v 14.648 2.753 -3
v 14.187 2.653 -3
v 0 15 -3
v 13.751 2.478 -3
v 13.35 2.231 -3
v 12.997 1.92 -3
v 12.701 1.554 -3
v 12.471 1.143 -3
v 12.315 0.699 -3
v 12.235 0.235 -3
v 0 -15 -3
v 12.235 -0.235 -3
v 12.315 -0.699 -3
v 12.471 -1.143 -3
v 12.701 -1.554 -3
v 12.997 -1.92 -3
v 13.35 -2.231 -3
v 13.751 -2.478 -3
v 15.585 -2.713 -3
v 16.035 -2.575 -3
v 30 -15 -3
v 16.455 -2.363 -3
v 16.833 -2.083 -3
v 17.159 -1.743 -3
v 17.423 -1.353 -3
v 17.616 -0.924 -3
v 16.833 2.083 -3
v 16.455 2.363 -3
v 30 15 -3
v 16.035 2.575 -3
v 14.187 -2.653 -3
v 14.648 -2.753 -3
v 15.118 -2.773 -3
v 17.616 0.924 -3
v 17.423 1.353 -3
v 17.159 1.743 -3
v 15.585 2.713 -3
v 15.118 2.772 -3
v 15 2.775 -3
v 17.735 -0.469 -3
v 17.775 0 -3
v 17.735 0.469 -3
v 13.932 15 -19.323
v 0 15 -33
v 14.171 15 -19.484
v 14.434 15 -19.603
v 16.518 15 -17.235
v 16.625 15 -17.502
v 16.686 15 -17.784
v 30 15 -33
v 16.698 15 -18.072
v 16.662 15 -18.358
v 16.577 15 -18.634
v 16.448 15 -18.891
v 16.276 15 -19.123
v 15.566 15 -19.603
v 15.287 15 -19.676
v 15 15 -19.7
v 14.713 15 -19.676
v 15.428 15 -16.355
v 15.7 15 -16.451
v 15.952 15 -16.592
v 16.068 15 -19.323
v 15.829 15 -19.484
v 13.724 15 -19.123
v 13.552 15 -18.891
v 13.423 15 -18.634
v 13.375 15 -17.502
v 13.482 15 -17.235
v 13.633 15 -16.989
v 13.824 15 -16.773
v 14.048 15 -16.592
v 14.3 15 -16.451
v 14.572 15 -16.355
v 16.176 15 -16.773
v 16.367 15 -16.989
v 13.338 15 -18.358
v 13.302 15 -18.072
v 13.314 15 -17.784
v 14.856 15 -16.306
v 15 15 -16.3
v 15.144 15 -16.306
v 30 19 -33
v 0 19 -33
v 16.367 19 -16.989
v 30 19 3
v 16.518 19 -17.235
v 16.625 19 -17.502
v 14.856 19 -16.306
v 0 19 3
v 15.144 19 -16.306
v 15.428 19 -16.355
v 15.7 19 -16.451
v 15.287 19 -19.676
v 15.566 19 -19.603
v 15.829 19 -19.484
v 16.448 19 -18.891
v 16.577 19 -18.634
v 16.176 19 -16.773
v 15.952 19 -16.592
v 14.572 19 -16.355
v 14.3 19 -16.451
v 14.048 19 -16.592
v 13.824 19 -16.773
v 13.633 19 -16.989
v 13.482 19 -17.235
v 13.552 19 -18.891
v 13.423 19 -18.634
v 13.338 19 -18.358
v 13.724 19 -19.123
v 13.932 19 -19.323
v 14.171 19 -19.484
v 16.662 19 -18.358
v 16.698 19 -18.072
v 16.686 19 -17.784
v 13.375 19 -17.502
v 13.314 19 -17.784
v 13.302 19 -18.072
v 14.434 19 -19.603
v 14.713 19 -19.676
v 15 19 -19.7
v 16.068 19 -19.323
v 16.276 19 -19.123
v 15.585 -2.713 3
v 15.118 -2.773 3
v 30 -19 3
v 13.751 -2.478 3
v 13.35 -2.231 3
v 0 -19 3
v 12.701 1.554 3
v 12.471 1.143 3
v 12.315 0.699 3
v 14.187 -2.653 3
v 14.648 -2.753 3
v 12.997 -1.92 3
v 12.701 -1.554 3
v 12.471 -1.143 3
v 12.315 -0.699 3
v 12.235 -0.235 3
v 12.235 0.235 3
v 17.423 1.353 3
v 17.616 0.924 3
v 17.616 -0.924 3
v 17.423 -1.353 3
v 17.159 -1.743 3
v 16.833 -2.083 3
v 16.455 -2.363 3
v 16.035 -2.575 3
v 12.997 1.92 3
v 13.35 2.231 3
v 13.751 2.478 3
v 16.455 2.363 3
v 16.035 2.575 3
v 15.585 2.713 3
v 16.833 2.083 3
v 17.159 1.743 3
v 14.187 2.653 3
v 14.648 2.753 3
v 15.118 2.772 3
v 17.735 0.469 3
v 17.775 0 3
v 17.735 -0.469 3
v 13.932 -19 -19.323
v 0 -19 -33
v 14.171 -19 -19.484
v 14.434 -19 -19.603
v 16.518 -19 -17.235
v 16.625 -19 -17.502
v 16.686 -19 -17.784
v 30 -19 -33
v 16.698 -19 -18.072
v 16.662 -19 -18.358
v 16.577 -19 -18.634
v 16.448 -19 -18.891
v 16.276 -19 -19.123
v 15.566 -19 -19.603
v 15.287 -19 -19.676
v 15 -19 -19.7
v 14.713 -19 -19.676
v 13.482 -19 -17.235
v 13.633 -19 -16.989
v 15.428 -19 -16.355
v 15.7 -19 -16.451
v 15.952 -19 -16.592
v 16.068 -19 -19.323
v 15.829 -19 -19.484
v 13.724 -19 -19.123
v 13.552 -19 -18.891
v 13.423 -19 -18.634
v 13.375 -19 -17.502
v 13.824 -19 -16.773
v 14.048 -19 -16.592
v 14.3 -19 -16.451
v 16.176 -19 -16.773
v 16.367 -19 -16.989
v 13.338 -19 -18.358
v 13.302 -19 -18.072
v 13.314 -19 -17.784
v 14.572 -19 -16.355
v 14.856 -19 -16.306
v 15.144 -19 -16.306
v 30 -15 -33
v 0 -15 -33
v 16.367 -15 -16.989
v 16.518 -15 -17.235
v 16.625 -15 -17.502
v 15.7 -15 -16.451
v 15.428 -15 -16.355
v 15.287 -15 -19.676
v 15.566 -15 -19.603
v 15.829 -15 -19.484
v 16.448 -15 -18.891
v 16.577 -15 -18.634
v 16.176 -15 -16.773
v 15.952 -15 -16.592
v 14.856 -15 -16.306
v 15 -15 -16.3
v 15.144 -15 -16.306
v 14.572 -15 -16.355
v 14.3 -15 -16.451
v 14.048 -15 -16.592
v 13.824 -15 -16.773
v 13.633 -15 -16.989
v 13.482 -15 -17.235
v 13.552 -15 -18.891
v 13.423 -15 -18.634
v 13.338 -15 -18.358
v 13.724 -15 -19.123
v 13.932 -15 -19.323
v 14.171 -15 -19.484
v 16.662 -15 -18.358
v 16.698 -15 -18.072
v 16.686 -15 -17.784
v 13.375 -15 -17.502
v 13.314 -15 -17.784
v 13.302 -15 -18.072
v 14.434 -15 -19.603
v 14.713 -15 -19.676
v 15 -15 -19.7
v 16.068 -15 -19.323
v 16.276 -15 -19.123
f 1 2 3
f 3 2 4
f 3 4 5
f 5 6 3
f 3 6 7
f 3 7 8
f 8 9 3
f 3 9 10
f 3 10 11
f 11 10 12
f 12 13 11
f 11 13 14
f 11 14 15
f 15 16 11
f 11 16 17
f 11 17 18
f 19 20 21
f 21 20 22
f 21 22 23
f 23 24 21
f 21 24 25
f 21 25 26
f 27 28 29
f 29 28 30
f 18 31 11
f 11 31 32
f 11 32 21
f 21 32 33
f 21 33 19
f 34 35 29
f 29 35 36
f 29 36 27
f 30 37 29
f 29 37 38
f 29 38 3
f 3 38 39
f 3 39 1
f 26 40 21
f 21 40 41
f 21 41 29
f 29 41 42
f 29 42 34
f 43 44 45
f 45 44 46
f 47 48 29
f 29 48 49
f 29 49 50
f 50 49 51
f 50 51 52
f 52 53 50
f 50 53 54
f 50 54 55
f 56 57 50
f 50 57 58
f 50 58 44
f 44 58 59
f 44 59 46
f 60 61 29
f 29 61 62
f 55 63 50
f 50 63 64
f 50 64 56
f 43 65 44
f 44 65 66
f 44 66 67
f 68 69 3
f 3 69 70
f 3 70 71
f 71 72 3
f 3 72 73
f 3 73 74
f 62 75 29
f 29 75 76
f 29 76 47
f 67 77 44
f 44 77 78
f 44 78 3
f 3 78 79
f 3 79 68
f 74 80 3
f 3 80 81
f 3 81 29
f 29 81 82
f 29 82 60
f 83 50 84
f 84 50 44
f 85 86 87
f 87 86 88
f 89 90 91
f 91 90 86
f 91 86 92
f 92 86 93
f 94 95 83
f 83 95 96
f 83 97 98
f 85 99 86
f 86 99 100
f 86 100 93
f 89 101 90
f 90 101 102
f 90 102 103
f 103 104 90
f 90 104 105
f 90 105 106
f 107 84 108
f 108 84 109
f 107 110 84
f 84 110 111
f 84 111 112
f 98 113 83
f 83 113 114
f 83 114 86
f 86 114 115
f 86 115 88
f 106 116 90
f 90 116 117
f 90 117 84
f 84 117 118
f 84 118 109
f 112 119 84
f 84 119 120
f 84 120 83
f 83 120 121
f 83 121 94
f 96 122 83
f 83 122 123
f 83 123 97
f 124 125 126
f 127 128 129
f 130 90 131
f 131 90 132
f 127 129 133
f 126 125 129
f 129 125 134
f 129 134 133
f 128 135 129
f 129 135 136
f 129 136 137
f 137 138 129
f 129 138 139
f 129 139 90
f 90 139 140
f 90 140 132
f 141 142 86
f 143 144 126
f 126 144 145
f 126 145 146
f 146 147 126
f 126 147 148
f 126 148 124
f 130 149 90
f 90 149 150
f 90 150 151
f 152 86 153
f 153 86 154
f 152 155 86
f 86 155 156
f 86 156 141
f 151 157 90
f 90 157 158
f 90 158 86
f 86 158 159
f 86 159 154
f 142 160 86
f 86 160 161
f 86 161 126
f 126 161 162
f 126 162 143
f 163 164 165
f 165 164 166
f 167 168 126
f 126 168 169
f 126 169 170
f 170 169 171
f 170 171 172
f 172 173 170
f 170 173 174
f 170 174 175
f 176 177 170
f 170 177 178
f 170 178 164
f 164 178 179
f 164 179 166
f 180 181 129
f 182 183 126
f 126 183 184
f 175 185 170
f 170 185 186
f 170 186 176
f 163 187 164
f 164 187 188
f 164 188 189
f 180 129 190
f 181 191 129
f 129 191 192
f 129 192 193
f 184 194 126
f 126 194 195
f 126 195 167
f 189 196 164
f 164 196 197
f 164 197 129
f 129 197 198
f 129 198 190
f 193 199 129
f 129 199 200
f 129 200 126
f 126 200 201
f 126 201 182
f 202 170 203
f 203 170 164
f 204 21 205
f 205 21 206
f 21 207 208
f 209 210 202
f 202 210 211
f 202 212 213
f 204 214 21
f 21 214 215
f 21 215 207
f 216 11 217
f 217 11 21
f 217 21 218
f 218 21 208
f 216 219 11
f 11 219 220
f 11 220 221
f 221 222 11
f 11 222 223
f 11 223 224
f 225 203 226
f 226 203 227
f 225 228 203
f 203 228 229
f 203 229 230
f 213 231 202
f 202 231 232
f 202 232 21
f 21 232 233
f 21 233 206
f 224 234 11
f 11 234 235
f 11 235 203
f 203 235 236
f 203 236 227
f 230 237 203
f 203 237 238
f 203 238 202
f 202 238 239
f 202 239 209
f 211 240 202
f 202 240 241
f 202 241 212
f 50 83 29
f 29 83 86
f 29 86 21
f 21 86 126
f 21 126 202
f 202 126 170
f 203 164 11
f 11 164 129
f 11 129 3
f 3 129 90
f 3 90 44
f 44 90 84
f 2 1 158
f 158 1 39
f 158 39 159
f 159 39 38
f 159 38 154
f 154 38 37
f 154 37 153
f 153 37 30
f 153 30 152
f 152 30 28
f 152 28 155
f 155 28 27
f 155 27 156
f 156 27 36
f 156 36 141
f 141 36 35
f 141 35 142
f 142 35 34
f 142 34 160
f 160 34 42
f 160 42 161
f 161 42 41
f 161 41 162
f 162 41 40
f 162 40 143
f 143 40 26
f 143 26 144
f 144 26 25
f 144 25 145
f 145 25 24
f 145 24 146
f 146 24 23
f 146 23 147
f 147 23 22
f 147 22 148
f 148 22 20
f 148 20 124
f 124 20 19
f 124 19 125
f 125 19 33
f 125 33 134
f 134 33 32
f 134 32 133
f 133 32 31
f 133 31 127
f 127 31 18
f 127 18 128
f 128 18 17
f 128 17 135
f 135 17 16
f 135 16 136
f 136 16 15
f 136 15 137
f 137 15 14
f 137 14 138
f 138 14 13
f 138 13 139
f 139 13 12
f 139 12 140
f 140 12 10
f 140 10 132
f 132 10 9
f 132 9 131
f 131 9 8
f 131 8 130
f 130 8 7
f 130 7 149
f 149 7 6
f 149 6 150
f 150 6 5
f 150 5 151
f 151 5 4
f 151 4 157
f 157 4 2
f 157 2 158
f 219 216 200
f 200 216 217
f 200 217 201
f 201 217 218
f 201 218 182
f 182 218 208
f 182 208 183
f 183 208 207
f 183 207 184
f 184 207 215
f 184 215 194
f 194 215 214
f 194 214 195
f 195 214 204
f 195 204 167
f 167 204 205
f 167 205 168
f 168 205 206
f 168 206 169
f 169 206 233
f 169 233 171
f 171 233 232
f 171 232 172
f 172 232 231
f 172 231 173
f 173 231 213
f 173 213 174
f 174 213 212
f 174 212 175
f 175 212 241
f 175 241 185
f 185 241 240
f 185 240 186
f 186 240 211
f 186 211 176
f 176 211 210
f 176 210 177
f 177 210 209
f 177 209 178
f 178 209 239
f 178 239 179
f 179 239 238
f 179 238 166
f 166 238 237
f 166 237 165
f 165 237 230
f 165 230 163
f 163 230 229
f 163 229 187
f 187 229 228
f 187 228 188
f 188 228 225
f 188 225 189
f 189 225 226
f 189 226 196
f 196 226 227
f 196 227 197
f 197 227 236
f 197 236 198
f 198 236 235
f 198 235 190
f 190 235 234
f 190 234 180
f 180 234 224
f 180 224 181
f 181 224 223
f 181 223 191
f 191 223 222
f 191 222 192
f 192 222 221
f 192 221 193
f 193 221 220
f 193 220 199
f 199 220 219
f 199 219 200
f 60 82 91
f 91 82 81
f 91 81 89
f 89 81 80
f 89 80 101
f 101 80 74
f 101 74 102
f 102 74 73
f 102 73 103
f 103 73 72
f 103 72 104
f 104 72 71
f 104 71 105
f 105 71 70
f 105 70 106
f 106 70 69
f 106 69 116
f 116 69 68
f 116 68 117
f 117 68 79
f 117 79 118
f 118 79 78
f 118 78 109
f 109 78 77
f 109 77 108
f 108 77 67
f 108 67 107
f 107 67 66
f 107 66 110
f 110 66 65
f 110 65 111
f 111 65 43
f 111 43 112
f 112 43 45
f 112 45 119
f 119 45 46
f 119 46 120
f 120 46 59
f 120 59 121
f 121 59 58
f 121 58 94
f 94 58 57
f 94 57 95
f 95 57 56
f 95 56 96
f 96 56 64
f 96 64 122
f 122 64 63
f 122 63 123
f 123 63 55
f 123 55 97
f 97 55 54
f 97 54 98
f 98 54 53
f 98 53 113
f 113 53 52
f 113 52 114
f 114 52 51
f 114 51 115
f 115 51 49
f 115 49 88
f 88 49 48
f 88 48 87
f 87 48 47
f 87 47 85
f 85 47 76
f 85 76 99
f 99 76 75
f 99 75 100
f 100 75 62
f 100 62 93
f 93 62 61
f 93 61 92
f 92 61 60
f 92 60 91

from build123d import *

# Parameters (mm, degrees)
SKETCH2_W           = 6
SKETCH2_H           = 30
BOSS_EXTRUDE1_DEPTH = 30
SKETCH4_R           = 2.775
CUT_EXTRUDE2_DEPTH  = 30
SKETCH5_R           = 1.7
CUT_EXTRUDE3_DEPTH  = 39


with BuildPart() as part:
    # Sketch2 → Boss-Extrude1 (new body)
    with BuildSketch(Plane(origin=(0, 0, 0), x_dir=(0, 0, -1), z_dir=(1, 0, 0))):
        Rectangle(SKETCH2_W, SKETCH2_H)
        Polygon((-3, 19), (-3, 15), (3, 15), (33, 15), (33, 19), align=None)
        Polygon((3, -15), (-3, -15), (-3, -19), (33, -19), (33, -15), align=None)
    extrude(amount=BOSS_EXTRUDE1_DEPTH)

    # Sketch4 → Cut-Extrude2 (cut)
    with BuildSketch(Plane.XY.offset(3)):
        with Locations((15, 0)):
            Circle(SKETCH4_R)
    extrude(amount=-CUT_EXTRUDE2_DEPTH, mode=Mode.SUBTRACT)

    # Sketch5 → Cut-Extrude3 (cut, through all)
    with BuildSketch(Plane.XZ.offset(19)):
        with Locations((15, -18)):
            Circle(SKETCH5_R)
    extrude(amount=-CUT_EXTRUDE3_DEPTH, mode=Mode.SUBTRACT)


solid = part.part
